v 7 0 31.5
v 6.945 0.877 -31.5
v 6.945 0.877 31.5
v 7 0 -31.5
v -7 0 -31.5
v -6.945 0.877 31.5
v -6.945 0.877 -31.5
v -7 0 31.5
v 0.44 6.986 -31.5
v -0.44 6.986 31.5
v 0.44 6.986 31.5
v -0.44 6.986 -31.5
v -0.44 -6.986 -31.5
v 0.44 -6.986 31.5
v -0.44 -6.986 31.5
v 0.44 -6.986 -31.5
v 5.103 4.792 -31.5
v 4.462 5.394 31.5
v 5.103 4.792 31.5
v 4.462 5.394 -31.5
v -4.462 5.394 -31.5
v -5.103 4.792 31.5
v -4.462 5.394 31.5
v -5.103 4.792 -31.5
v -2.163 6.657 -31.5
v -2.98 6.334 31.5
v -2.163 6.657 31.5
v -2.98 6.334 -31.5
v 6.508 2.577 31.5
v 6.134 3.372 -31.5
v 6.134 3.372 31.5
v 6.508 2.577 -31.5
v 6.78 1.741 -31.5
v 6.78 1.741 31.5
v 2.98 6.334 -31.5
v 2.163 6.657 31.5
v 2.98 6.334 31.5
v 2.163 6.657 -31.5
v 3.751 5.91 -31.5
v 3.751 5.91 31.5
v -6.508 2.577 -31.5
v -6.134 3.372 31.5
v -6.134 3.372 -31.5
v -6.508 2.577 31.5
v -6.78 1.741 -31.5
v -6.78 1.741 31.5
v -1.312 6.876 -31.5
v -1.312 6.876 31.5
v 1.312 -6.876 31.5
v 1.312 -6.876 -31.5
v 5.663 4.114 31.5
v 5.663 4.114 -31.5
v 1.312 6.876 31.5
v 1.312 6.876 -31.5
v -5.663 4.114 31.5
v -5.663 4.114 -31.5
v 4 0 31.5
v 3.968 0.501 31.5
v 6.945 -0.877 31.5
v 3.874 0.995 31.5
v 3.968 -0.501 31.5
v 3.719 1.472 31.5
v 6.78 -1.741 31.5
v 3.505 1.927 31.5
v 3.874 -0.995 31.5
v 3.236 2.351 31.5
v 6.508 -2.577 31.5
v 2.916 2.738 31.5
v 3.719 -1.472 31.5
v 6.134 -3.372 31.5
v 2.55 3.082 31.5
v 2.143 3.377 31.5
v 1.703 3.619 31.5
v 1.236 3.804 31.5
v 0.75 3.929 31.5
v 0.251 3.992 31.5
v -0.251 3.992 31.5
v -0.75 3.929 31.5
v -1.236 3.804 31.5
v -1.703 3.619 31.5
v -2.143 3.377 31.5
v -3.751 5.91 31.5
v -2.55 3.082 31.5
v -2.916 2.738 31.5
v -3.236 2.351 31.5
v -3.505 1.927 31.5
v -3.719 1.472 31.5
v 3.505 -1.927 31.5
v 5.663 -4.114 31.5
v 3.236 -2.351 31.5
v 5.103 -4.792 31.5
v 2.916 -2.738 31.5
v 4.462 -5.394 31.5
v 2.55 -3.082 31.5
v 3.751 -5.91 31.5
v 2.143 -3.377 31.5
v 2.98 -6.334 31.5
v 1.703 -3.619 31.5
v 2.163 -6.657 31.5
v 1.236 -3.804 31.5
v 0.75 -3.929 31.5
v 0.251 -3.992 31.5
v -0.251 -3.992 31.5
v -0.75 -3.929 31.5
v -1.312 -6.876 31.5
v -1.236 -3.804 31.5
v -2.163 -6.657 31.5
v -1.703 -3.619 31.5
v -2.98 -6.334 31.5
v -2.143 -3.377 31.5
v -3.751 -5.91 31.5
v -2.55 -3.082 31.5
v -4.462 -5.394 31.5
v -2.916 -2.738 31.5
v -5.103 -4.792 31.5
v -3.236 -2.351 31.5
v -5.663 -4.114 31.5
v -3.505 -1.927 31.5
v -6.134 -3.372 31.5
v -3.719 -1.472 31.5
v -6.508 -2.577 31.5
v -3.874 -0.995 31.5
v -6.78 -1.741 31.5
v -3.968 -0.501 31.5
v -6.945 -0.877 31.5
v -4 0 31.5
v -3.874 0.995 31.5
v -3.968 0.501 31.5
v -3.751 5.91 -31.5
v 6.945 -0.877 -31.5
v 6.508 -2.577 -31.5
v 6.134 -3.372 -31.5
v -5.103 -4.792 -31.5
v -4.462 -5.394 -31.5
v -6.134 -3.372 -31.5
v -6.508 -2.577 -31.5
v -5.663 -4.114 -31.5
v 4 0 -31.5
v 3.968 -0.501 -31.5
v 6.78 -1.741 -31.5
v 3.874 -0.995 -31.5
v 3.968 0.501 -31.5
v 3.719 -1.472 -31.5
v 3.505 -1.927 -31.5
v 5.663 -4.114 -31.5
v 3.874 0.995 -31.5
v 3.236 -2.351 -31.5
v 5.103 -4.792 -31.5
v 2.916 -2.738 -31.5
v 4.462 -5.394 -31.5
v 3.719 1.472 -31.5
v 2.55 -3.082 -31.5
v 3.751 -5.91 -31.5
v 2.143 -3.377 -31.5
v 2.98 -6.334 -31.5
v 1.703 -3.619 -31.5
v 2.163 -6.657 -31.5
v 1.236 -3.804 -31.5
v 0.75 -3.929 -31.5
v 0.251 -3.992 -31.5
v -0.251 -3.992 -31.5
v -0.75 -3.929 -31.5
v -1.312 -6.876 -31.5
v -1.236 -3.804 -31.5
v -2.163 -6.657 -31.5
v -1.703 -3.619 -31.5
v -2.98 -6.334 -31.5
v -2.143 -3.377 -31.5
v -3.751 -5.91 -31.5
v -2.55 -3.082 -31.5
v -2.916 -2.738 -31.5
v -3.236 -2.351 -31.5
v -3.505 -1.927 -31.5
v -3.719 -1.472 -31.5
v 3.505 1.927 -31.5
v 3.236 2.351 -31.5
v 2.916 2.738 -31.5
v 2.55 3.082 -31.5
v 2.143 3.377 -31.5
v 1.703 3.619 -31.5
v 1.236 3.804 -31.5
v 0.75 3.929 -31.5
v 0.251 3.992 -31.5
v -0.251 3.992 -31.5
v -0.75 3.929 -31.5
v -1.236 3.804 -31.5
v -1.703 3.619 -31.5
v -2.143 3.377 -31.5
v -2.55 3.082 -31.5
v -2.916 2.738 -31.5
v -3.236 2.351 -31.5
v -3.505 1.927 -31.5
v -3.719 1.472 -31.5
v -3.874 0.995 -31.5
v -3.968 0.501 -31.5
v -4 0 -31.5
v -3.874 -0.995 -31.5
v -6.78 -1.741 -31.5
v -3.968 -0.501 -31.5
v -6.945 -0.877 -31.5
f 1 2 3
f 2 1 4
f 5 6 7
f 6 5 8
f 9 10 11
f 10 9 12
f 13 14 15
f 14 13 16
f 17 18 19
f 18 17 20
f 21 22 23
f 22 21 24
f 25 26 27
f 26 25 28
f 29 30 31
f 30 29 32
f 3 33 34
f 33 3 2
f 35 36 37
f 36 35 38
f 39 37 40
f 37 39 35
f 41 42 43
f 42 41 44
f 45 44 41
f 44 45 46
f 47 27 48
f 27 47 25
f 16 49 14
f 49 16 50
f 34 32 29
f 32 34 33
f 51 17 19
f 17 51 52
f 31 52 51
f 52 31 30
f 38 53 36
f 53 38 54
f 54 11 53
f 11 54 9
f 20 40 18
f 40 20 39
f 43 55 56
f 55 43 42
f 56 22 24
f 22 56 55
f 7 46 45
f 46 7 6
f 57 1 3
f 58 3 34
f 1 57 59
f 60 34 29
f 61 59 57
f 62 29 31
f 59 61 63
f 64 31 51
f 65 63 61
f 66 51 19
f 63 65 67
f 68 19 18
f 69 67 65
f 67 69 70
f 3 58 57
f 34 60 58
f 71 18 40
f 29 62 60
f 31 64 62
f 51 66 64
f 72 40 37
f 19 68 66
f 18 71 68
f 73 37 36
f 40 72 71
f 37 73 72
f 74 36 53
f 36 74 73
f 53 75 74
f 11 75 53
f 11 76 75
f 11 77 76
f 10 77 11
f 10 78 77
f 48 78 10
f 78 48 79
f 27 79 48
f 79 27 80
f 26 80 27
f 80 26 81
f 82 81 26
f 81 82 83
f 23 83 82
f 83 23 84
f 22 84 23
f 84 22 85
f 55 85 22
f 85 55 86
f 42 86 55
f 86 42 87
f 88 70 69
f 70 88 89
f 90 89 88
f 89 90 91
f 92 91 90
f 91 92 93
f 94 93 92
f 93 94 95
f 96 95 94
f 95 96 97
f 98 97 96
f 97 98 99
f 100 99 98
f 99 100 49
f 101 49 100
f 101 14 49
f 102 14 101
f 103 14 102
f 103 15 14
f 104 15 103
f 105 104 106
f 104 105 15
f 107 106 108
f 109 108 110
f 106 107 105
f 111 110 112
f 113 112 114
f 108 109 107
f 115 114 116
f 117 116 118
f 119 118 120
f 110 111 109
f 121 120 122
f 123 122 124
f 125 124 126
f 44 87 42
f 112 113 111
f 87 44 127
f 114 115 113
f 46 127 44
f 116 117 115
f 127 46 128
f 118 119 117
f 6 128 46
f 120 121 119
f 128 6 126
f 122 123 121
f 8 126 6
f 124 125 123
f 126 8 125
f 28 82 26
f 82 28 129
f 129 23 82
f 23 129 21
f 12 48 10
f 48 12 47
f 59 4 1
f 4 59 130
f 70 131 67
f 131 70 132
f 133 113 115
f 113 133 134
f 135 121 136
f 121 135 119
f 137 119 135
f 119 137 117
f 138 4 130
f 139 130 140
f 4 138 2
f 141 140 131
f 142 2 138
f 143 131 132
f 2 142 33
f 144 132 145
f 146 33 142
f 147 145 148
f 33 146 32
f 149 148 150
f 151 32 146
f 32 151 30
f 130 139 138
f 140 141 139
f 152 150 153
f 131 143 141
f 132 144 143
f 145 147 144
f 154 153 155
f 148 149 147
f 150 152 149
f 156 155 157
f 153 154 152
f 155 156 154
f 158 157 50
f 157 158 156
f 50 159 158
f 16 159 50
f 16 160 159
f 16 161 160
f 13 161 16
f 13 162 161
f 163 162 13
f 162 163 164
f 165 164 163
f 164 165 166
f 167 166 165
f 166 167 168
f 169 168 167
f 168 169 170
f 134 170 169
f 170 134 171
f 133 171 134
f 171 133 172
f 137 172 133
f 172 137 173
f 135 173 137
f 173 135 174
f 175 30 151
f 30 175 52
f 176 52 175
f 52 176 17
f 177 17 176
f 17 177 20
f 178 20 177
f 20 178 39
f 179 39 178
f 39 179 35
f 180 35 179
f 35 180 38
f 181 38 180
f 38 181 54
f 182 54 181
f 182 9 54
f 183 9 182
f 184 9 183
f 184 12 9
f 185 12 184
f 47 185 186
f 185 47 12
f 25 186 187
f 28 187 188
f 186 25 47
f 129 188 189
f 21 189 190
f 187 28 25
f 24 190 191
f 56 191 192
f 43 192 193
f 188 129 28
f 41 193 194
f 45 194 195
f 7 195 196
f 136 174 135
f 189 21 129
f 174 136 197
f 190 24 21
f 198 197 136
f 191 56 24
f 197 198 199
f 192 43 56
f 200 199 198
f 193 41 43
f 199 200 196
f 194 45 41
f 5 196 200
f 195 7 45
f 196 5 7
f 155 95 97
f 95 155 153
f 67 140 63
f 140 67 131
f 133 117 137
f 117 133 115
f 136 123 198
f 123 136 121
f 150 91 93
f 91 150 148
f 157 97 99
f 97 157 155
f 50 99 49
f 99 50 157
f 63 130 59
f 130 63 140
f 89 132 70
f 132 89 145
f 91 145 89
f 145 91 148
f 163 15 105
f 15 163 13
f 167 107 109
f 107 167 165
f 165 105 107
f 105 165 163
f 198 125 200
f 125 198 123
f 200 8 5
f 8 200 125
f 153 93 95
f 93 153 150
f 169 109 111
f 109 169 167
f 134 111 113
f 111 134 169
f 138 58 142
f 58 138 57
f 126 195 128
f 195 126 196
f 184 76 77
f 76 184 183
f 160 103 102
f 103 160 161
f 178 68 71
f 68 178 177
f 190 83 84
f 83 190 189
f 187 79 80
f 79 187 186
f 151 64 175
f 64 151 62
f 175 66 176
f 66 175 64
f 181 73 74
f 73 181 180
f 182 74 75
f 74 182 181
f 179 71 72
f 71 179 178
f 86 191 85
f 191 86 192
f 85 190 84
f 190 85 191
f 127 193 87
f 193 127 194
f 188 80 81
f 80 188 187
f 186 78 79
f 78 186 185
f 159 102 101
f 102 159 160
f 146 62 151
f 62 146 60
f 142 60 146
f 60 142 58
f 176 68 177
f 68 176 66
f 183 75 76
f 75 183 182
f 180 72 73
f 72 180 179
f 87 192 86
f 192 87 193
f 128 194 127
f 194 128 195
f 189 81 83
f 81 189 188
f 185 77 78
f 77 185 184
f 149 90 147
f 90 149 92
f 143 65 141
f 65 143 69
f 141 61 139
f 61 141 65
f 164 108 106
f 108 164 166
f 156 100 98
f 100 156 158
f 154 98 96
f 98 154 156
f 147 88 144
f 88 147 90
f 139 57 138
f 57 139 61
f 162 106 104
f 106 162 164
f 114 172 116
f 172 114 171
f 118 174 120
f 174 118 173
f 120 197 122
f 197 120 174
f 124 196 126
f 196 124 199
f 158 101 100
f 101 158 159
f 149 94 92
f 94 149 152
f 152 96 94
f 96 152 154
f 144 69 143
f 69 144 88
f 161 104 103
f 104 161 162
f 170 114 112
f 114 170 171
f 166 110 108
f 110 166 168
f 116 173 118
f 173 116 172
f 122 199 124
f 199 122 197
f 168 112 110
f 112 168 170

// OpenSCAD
$fn = 50;


difference() {
	union() {
		translate(v = [0, 0, -31.5000000000]) {
			cylinder(h = 63, r = 7.0000000000);
		}
	}
	union() {
		translate(v = [0, 0, -100.0000000000]) {
			cylinder(h = 200, r = 4);
		}
	}
}
